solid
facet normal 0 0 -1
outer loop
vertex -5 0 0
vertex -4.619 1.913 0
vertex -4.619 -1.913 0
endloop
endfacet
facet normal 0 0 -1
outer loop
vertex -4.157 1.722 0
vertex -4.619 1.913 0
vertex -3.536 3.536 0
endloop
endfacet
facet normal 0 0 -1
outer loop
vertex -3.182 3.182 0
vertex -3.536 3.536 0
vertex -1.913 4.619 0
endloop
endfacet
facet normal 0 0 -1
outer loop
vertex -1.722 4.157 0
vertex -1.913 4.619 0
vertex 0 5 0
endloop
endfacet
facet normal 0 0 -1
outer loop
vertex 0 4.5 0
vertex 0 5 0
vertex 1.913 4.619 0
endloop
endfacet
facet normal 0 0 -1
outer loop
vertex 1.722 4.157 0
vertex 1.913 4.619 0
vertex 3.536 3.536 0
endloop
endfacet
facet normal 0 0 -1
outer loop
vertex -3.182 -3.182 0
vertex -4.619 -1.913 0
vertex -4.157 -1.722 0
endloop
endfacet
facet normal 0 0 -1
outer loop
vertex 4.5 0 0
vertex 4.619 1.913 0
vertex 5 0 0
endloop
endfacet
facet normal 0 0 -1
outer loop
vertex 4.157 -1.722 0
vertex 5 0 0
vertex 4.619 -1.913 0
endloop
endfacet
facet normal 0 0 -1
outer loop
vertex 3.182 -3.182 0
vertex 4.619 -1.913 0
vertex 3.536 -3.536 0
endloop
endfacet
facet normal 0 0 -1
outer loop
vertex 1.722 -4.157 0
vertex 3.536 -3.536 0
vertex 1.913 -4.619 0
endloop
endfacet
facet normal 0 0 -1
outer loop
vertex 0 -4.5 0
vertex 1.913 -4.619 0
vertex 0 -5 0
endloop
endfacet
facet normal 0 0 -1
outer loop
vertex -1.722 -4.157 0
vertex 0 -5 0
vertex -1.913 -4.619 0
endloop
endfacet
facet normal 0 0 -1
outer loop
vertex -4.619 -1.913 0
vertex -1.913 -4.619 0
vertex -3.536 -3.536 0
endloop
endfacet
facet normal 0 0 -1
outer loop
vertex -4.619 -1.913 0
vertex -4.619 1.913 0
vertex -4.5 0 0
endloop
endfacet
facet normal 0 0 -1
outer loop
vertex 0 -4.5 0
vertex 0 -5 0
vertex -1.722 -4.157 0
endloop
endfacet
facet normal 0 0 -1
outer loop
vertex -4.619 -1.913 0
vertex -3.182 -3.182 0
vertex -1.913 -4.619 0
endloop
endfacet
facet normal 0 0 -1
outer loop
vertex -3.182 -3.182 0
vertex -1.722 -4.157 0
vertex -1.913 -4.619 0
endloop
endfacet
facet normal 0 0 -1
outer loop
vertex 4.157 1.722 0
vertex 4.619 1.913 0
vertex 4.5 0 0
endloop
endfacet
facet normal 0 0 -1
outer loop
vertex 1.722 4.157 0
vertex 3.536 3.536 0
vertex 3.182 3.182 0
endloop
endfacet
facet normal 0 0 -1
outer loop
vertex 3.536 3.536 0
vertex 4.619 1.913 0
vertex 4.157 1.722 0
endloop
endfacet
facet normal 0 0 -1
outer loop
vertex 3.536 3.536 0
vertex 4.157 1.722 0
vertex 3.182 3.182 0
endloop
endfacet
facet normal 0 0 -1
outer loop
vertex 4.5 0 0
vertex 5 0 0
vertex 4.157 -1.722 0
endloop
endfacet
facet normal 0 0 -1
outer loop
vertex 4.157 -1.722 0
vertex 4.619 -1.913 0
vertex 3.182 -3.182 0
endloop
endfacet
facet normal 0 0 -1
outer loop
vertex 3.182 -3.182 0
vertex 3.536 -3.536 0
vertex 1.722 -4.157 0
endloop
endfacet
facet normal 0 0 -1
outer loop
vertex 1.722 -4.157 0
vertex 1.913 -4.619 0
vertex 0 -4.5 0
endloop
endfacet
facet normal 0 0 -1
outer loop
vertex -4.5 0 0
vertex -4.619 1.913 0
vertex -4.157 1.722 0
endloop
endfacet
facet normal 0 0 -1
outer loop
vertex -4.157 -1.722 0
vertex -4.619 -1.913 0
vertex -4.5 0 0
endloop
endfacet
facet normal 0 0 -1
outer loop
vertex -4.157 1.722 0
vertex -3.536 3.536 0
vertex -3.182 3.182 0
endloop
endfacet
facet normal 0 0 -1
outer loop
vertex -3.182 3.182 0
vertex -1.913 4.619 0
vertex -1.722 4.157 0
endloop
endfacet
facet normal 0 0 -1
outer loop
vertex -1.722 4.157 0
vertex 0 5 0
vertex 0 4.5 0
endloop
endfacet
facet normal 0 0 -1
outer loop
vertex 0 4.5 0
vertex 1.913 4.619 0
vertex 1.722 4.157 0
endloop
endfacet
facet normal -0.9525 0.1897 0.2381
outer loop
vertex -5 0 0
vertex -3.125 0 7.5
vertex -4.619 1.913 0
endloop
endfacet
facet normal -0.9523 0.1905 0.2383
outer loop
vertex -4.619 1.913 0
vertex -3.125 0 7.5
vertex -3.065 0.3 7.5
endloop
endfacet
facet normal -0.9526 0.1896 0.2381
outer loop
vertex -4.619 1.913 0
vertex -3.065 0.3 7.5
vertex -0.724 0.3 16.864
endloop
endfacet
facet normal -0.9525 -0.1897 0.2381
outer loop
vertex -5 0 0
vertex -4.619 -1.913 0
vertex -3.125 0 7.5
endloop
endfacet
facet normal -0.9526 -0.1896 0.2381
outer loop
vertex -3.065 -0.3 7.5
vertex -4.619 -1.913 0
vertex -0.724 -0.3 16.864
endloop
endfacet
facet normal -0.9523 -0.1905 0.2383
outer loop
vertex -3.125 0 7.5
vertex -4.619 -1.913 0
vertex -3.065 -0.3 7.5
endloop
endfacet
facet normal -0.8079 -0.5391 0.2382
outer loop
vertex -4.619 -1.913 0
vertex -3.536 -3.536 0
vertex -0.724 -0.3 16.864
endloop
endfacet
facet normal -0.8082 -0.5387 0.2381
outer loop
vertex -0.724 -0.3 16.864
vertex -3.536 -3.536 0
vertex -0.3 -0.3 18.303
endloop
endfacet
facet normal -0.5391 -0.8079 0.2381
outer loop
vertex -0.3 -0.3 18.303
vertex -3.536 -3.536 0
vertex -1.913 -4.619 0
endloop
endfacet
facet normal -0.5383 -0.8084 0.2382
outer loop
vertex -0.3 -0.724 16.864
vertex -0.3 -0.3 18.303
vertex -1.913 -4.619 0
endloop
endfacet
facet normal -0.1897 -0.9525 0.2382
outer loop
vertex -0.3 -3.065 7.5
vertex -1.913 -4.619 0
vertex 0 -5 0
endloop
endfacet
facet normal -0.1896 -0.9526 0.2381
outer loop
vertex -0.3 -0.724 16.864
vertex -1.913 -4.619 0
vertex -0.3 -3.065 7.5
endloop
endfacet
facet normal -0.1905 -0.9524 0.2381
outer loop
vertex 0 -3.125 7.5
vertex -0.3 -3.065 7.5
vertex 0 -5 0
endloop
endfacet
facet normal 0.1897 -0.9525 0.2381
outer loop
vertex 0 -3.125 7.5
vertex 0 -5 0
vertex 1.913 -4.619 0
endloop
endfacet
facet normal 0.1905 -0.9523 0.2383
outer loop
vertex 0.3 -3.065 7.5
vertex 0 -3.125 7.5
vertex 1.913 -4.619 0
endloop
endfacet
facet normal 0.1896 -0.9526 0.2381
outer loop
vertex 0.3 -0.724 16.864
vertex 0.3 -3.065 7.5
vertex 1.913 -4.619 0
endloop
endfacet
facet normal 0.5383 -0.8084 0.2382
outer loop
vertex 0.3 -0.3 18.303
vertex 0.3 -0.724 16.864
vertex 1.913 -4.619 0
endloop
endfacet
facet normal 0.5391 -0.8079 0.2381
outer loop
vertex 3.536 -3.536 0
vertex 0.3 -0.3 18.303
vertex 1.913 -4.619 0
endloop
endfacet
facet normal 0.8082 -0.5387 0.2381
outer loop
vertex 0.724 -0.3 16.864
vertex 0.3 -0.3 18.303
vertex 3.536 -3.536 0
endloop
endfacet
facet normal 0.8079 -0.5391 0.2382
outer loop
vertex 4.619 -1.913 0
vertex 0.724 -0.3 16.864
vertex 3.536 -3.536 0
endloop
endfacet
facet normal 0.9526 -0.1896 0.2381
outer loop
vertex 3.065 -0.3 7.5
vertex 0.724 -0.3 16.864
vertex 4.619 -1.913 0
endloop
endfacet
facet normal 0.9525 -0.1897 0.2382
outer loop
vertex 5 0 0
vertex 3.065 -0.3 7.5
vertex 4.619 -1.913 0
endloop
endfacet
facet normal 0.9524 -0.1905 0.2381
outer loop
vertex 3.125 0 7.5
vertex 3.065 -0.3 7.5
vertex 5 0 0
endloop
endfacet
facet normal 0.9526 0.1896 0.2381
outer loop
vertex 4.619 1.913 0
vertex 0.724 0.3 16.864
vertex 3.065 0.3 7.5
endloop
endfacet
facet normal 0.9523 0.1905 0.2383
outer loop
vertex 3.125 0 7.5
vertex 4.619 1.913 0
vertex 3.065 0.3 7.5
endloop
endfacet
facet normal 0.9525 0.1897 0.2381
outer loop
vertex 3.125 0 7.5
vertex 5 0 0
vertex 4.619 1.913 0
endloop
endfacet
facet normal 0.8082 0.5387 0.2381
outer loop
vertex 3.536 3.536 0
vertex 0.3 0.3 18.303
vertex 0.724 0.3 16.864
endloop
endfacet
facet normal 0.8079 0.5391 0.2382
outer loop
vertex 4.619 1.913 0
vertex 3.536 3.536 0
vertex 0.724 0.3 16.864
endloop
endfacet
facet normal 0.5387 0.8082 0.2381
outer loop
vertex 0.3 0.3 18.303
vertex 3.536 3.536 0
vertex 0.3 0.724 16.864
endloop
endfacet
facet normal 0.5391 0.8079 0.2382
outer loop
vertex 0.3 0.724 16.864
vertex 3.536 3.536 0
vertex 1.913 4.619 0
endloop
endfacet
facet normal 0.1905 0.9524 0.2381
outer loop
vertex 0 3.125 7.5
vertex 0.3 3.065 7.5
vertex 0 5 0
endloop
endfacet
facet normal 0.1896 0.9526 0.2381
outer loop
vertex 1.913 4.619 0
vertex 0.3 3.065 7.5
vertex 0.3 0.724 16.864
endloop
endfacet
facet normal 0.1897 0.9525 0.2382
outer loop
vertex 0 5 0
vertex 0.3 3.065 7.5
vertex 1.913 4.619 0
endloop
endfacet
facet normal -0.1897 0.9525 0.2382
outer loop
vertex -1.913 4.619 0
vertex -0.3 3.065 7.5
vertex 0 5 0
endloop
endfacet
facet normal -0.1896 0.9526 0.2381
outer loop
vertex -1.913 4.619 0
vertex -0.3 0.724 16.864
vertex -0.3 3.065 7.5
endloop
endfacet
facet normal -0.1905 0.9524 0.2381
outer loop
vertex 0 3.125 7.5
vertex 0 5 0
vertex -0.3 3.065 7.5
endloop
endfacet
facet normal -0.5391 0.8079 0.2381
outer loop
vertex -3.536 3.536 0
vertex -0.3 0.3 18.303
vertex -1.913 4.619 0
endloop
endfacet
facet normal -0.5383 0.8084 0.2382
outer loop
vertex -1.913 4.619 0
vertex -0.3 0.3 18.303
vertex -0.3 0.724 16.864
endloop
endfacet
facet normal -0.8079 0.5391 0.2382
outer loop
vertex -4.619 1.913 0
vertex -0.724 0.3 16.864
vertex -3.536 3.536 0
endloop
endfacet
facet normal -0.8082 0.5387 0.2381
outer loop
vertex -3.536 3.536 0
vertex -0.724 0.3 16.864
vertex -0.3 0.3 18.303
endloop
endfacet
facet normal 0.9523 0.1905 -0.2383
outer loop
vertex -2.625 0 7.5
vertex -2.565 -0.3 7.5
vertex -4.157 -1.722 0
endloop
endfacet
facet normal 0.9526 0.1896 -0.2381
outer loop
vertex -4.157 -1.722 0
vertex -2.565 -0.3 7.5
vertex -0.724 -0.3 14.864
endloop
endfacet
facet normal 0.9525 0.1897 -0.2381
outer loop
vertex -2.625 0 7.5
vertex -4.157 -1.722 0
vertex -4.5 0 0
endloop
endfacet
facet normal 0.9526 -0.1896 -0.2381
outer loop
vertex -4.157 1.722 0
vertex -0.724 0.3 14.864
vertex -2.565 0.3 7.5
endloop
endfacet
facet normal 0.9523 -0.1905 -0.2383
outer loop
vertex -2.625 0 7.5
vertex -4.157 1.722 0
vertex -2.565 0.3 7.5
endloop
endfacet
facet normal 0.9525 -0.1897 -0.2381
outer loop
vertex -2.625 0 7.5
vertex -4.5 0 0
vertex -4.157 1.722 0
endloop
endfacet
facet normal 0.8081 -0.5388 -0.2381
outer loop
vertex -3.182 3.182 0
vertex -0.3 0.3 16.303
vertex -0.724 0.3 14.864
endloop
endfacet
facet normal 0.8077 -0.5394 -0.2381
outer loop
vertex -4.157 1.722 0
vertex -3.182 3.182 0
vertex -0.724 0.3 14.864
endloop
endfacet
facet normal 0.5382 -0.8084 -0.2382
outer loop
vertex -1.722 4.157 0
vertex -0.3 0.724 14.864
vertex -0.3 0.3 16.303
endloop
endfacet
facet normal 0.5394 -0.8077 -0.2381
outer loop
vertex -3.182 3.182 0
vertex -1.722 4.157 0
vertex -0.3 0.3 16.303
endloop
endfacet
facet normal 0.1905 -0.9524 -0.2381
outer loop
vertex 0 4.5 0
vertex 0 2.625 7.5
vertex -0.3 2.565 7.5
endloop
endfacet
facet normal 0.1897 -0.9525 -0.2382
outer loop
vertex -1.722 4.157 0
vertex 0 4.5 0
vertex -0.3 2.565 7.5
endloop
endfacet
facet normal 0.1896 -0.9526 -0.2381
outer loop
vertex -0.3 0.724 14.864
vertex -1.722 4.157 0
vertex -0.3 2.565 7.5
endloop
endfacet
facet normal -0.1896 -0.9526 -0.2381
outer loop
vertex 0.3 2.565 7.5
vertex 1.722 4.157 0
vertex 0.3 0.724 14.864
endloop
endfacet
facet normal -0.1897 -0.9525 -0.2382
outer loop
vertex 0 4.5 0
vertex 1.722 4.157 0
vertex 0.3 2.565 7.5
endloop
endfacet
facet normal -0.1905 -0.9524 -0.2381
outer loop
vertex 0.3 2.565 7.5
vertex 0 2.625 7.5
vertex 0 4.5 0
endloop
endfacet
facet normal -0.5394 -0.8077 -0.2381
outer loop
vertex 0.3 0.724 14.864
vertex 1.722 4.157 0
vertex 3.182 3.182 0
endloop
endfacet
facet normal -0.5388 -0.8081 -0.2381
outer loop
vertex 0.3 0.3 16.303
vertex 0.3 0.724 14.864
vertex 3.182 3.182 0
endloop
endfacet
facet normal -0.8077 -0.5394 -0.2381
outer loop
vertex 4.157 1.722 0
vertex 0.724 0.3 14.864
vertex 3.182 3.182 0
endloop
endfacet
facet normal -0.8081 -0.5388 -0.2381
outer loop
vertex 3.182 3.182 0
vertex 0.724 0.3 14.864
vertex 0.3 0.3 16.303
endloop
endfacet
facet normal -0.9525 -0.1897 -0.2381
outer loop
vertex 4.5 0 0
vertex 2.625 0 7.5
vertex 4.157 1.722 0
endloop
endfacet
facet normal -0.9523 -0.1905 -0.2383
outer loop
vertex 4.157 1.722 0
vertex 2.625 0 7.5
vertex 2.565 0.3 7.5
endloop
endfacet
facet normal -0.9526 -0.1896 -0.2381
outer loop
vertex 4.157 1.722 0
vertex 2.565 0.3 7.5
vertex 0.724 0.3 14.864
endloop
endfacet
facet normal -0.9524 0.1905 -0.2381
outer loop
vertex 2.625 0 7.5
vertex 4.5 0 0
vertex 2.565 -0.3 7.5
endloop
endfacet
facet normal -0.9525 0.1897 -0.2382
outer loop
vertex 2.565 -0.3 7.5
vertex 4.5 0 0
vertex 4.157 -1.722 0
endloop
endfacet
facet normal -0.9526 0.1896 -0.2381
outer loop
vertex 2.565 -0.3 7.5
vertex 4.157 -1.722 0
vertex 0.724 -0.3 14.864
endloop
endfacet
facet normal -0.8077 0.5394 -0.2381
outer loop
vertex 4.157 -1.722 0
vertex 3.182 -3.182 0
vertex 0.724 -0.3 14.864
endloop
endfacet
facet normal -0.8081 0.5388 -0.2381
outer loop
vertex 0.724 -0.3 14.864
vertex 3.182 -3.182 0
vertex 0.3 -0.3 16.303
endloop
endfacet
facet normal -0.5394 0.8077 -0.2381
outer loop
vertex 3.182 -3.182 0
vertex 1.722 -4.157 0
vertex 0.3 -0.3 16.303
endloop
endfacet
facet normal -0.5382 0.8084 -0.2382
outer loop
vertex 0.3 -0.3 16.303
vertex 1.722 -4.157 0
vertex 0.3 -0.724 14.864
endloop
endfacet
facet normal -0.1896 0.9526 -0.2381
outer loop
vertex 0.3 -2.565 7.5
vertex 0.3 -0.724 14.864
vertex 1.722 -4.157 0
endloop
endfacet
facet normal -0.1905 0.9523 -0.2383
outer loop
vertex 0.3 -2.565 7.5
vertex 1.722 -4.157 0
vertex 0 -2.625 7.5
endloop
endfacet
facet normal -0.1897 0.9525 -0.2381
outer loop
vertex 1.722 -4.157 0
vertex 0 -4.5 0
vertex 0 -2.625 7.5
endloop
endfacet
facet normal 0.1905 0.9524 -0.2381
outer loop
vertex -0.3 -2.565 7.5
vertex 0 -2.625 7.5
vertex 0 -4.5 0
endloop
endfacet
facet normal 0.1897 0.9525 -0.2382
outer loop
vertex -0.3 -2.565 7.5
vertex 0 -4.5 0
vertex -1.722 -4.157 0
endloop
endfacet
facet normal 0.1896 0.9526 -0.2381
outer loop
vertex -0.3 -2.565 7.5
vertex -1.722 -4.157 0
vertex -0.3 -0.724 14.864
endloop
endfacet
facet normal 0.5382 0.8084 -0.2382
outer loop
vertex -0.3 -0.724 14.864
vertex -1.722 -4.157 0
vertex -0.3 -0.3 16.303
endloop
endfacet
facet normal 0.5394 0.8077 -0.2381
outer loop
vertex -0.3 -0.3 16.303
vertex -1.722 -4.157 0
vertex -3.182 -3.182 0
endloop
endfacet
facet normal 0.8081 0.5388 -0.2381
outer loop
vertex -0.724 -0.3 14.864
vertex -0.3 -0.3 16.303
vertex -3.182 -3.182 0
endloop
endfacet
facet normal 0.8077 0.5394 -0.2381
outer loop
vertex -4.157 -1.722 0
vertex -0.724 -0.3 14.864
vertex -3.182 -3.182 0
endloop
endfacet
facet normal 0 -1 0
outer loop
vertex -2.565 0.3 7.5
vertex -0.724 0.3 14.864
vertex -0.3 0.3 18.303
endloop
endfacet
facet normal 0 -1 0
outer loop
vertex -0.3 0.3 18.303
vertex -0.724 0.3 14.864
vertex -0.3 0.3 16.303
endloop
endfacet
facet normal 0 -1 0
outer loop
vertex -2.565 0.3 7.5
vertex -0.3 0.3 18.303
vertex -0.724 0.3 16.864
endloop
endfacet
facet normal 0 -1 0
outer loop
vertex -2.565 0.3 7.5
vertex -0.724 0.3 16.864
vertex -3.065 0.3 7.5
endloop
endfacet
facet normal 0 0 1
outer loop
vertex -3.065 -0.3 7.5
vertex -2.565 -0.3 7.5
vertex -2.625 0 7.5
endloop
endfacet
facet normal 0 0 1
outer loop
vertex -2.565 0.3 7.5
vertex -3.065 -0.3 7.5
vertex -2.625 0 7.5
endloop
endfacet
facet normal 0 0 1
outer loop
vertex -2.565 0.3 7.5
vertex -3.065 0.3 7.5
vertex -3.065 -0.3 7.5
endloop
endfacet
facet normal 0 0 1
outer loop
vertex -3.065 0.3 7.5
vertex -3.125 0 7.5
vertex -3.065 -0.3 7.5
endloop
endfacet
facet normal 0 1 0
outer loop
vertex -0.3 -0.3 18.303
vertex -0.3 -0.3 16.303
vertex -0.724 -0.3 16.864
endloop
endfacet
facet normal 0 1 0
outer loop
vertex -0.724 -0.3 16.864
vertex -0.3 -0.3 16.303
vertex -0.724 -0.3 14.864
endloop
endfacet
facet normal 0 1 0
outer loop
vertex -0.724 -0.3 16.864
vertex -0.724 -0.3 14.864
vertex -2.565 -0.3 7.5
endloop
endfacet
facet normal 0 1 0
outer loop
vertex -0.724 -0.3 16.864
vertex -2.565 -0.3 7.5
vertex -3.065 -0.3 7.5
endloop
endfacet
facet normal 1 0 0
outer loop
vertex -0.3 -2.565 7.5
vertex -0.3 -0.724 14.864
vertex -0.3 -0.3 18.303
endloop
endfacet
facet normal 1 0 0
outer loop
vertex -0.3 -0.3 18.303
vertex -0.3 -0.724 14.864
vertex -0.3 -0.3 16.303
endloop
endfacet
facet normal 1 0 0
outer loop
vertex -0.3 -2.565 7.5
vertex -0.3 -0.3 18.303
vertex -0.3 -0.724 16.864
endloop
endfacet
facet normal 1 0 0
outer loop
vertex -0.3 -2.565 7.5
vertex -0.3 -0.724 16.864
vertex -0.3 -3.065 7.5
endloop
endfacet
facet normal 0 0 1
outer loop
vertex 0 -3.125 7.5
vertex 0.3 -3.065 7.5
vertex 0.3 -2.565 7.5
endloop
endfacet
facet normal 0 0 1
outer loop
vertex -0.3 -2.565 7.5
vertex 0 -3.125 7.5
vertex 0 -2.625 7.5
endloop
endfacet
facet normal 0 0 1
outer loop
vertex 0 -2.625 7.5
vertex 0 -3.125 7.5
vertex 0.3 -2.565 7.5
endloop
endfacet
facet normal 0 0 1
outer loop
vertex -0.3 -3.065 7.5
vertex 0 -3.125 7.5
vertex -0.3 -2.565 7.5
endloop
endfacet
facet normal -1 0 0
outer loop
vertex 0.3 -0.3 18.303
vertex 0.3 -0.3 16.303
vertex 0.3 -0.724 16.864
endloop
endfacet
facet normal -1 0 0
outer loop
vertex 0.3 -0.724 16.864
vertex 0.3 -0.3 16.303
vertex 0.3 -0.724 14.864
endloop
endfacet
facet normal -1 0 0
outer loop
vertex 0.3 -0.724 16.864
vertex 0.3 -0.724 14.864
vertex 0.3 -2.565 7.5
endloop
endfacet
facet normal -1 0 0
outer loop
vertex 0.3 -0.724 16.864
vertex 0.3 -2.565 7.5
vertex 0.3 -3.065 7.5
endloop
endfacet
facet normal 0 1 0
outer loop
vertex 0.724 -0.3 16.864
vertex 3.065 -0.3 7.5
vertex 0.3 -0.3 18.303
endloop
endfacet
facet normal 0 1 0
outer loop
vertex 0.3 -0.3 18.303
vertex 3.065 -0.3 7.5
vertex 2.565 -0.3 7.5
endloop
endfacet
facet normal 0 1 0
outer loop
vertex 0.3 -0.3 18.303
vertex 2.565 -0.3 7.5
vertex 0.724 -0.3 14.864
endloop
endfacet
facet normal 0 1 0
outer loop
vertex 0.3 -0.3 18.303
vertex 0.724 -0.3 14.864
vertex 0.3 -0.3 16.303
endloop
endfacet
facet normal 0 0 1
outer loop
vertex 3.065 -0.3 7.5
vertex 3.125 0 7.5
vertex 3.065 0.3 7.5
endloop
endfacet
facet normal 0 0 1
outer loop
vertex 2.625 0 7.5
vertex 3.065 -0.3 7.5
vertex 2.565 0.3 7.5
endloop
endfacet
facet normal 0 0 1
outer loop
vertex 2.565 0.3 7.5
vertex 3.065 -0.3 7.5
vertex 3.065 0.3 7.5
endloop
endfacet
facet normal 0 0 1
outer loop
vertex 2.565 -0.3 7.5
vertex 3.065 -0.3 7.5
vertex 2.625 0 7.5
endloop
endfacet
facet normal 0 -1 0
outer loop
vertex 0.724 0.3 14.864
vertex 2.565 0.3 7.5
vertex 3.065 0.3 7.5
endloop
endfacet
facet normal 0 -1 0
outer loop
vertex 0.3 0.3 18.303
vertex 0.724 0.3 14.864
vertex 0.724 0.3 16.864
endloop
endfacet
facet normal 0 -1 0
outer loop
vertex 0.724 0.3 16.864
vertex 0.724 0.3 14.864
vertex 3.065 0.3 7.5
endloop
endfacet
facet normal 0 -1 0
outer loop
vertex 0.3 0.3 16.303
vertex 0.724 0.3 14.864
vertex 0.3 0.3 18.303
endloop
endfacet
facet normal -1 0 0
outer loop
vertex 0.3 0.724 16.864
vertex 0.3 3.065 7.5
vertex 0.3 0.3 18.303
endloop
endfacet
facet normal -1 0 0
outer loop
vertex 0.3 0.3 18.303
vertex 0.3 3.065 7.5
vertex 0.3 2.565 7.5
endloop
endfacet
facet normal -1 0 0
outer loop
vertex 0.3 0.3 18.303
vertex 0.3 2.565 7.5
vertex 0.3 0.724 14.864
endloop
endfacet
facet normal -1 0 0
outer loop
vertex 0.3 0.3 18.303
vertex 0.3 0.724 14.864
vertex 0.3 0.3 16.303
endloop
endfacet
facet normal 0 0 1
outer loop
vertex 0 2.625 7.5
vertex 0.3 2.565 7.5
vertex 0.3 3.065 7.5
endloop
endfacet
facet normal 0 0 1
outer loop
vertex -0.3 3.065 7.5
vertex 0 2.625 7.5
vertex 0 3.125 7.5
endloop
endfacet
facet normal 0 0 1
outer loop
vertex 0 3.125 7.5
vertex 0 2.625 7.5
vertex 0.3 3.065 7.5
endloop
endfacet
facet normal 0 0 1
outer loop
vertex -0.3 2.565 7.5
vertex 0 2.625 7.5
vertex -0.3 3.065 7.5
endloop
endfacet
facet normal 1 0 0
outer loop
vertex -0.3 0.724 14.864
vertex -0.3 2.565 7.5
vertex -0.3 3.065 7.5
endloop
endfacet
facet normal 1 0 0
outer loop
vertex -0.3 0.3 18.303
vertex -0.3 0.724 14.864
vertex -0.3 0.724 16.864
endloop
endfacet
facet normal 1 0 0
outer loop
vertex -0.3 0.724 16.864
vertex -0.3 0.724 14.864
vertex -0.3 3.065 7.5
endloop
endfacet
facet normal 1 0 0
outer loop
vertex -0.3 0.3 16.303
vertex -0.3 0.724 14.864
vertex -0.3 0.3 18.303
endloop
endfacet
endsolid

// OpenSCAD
difference() {
difference() {
cylinder(20,5,0); 
translate([0,0,-2]) cylinder(20,5,0); 
}
translate([0,0,15]) union() {
cube([.6,15,15],center=true); 
cube([15,.6,15],center=true); 
}
}
